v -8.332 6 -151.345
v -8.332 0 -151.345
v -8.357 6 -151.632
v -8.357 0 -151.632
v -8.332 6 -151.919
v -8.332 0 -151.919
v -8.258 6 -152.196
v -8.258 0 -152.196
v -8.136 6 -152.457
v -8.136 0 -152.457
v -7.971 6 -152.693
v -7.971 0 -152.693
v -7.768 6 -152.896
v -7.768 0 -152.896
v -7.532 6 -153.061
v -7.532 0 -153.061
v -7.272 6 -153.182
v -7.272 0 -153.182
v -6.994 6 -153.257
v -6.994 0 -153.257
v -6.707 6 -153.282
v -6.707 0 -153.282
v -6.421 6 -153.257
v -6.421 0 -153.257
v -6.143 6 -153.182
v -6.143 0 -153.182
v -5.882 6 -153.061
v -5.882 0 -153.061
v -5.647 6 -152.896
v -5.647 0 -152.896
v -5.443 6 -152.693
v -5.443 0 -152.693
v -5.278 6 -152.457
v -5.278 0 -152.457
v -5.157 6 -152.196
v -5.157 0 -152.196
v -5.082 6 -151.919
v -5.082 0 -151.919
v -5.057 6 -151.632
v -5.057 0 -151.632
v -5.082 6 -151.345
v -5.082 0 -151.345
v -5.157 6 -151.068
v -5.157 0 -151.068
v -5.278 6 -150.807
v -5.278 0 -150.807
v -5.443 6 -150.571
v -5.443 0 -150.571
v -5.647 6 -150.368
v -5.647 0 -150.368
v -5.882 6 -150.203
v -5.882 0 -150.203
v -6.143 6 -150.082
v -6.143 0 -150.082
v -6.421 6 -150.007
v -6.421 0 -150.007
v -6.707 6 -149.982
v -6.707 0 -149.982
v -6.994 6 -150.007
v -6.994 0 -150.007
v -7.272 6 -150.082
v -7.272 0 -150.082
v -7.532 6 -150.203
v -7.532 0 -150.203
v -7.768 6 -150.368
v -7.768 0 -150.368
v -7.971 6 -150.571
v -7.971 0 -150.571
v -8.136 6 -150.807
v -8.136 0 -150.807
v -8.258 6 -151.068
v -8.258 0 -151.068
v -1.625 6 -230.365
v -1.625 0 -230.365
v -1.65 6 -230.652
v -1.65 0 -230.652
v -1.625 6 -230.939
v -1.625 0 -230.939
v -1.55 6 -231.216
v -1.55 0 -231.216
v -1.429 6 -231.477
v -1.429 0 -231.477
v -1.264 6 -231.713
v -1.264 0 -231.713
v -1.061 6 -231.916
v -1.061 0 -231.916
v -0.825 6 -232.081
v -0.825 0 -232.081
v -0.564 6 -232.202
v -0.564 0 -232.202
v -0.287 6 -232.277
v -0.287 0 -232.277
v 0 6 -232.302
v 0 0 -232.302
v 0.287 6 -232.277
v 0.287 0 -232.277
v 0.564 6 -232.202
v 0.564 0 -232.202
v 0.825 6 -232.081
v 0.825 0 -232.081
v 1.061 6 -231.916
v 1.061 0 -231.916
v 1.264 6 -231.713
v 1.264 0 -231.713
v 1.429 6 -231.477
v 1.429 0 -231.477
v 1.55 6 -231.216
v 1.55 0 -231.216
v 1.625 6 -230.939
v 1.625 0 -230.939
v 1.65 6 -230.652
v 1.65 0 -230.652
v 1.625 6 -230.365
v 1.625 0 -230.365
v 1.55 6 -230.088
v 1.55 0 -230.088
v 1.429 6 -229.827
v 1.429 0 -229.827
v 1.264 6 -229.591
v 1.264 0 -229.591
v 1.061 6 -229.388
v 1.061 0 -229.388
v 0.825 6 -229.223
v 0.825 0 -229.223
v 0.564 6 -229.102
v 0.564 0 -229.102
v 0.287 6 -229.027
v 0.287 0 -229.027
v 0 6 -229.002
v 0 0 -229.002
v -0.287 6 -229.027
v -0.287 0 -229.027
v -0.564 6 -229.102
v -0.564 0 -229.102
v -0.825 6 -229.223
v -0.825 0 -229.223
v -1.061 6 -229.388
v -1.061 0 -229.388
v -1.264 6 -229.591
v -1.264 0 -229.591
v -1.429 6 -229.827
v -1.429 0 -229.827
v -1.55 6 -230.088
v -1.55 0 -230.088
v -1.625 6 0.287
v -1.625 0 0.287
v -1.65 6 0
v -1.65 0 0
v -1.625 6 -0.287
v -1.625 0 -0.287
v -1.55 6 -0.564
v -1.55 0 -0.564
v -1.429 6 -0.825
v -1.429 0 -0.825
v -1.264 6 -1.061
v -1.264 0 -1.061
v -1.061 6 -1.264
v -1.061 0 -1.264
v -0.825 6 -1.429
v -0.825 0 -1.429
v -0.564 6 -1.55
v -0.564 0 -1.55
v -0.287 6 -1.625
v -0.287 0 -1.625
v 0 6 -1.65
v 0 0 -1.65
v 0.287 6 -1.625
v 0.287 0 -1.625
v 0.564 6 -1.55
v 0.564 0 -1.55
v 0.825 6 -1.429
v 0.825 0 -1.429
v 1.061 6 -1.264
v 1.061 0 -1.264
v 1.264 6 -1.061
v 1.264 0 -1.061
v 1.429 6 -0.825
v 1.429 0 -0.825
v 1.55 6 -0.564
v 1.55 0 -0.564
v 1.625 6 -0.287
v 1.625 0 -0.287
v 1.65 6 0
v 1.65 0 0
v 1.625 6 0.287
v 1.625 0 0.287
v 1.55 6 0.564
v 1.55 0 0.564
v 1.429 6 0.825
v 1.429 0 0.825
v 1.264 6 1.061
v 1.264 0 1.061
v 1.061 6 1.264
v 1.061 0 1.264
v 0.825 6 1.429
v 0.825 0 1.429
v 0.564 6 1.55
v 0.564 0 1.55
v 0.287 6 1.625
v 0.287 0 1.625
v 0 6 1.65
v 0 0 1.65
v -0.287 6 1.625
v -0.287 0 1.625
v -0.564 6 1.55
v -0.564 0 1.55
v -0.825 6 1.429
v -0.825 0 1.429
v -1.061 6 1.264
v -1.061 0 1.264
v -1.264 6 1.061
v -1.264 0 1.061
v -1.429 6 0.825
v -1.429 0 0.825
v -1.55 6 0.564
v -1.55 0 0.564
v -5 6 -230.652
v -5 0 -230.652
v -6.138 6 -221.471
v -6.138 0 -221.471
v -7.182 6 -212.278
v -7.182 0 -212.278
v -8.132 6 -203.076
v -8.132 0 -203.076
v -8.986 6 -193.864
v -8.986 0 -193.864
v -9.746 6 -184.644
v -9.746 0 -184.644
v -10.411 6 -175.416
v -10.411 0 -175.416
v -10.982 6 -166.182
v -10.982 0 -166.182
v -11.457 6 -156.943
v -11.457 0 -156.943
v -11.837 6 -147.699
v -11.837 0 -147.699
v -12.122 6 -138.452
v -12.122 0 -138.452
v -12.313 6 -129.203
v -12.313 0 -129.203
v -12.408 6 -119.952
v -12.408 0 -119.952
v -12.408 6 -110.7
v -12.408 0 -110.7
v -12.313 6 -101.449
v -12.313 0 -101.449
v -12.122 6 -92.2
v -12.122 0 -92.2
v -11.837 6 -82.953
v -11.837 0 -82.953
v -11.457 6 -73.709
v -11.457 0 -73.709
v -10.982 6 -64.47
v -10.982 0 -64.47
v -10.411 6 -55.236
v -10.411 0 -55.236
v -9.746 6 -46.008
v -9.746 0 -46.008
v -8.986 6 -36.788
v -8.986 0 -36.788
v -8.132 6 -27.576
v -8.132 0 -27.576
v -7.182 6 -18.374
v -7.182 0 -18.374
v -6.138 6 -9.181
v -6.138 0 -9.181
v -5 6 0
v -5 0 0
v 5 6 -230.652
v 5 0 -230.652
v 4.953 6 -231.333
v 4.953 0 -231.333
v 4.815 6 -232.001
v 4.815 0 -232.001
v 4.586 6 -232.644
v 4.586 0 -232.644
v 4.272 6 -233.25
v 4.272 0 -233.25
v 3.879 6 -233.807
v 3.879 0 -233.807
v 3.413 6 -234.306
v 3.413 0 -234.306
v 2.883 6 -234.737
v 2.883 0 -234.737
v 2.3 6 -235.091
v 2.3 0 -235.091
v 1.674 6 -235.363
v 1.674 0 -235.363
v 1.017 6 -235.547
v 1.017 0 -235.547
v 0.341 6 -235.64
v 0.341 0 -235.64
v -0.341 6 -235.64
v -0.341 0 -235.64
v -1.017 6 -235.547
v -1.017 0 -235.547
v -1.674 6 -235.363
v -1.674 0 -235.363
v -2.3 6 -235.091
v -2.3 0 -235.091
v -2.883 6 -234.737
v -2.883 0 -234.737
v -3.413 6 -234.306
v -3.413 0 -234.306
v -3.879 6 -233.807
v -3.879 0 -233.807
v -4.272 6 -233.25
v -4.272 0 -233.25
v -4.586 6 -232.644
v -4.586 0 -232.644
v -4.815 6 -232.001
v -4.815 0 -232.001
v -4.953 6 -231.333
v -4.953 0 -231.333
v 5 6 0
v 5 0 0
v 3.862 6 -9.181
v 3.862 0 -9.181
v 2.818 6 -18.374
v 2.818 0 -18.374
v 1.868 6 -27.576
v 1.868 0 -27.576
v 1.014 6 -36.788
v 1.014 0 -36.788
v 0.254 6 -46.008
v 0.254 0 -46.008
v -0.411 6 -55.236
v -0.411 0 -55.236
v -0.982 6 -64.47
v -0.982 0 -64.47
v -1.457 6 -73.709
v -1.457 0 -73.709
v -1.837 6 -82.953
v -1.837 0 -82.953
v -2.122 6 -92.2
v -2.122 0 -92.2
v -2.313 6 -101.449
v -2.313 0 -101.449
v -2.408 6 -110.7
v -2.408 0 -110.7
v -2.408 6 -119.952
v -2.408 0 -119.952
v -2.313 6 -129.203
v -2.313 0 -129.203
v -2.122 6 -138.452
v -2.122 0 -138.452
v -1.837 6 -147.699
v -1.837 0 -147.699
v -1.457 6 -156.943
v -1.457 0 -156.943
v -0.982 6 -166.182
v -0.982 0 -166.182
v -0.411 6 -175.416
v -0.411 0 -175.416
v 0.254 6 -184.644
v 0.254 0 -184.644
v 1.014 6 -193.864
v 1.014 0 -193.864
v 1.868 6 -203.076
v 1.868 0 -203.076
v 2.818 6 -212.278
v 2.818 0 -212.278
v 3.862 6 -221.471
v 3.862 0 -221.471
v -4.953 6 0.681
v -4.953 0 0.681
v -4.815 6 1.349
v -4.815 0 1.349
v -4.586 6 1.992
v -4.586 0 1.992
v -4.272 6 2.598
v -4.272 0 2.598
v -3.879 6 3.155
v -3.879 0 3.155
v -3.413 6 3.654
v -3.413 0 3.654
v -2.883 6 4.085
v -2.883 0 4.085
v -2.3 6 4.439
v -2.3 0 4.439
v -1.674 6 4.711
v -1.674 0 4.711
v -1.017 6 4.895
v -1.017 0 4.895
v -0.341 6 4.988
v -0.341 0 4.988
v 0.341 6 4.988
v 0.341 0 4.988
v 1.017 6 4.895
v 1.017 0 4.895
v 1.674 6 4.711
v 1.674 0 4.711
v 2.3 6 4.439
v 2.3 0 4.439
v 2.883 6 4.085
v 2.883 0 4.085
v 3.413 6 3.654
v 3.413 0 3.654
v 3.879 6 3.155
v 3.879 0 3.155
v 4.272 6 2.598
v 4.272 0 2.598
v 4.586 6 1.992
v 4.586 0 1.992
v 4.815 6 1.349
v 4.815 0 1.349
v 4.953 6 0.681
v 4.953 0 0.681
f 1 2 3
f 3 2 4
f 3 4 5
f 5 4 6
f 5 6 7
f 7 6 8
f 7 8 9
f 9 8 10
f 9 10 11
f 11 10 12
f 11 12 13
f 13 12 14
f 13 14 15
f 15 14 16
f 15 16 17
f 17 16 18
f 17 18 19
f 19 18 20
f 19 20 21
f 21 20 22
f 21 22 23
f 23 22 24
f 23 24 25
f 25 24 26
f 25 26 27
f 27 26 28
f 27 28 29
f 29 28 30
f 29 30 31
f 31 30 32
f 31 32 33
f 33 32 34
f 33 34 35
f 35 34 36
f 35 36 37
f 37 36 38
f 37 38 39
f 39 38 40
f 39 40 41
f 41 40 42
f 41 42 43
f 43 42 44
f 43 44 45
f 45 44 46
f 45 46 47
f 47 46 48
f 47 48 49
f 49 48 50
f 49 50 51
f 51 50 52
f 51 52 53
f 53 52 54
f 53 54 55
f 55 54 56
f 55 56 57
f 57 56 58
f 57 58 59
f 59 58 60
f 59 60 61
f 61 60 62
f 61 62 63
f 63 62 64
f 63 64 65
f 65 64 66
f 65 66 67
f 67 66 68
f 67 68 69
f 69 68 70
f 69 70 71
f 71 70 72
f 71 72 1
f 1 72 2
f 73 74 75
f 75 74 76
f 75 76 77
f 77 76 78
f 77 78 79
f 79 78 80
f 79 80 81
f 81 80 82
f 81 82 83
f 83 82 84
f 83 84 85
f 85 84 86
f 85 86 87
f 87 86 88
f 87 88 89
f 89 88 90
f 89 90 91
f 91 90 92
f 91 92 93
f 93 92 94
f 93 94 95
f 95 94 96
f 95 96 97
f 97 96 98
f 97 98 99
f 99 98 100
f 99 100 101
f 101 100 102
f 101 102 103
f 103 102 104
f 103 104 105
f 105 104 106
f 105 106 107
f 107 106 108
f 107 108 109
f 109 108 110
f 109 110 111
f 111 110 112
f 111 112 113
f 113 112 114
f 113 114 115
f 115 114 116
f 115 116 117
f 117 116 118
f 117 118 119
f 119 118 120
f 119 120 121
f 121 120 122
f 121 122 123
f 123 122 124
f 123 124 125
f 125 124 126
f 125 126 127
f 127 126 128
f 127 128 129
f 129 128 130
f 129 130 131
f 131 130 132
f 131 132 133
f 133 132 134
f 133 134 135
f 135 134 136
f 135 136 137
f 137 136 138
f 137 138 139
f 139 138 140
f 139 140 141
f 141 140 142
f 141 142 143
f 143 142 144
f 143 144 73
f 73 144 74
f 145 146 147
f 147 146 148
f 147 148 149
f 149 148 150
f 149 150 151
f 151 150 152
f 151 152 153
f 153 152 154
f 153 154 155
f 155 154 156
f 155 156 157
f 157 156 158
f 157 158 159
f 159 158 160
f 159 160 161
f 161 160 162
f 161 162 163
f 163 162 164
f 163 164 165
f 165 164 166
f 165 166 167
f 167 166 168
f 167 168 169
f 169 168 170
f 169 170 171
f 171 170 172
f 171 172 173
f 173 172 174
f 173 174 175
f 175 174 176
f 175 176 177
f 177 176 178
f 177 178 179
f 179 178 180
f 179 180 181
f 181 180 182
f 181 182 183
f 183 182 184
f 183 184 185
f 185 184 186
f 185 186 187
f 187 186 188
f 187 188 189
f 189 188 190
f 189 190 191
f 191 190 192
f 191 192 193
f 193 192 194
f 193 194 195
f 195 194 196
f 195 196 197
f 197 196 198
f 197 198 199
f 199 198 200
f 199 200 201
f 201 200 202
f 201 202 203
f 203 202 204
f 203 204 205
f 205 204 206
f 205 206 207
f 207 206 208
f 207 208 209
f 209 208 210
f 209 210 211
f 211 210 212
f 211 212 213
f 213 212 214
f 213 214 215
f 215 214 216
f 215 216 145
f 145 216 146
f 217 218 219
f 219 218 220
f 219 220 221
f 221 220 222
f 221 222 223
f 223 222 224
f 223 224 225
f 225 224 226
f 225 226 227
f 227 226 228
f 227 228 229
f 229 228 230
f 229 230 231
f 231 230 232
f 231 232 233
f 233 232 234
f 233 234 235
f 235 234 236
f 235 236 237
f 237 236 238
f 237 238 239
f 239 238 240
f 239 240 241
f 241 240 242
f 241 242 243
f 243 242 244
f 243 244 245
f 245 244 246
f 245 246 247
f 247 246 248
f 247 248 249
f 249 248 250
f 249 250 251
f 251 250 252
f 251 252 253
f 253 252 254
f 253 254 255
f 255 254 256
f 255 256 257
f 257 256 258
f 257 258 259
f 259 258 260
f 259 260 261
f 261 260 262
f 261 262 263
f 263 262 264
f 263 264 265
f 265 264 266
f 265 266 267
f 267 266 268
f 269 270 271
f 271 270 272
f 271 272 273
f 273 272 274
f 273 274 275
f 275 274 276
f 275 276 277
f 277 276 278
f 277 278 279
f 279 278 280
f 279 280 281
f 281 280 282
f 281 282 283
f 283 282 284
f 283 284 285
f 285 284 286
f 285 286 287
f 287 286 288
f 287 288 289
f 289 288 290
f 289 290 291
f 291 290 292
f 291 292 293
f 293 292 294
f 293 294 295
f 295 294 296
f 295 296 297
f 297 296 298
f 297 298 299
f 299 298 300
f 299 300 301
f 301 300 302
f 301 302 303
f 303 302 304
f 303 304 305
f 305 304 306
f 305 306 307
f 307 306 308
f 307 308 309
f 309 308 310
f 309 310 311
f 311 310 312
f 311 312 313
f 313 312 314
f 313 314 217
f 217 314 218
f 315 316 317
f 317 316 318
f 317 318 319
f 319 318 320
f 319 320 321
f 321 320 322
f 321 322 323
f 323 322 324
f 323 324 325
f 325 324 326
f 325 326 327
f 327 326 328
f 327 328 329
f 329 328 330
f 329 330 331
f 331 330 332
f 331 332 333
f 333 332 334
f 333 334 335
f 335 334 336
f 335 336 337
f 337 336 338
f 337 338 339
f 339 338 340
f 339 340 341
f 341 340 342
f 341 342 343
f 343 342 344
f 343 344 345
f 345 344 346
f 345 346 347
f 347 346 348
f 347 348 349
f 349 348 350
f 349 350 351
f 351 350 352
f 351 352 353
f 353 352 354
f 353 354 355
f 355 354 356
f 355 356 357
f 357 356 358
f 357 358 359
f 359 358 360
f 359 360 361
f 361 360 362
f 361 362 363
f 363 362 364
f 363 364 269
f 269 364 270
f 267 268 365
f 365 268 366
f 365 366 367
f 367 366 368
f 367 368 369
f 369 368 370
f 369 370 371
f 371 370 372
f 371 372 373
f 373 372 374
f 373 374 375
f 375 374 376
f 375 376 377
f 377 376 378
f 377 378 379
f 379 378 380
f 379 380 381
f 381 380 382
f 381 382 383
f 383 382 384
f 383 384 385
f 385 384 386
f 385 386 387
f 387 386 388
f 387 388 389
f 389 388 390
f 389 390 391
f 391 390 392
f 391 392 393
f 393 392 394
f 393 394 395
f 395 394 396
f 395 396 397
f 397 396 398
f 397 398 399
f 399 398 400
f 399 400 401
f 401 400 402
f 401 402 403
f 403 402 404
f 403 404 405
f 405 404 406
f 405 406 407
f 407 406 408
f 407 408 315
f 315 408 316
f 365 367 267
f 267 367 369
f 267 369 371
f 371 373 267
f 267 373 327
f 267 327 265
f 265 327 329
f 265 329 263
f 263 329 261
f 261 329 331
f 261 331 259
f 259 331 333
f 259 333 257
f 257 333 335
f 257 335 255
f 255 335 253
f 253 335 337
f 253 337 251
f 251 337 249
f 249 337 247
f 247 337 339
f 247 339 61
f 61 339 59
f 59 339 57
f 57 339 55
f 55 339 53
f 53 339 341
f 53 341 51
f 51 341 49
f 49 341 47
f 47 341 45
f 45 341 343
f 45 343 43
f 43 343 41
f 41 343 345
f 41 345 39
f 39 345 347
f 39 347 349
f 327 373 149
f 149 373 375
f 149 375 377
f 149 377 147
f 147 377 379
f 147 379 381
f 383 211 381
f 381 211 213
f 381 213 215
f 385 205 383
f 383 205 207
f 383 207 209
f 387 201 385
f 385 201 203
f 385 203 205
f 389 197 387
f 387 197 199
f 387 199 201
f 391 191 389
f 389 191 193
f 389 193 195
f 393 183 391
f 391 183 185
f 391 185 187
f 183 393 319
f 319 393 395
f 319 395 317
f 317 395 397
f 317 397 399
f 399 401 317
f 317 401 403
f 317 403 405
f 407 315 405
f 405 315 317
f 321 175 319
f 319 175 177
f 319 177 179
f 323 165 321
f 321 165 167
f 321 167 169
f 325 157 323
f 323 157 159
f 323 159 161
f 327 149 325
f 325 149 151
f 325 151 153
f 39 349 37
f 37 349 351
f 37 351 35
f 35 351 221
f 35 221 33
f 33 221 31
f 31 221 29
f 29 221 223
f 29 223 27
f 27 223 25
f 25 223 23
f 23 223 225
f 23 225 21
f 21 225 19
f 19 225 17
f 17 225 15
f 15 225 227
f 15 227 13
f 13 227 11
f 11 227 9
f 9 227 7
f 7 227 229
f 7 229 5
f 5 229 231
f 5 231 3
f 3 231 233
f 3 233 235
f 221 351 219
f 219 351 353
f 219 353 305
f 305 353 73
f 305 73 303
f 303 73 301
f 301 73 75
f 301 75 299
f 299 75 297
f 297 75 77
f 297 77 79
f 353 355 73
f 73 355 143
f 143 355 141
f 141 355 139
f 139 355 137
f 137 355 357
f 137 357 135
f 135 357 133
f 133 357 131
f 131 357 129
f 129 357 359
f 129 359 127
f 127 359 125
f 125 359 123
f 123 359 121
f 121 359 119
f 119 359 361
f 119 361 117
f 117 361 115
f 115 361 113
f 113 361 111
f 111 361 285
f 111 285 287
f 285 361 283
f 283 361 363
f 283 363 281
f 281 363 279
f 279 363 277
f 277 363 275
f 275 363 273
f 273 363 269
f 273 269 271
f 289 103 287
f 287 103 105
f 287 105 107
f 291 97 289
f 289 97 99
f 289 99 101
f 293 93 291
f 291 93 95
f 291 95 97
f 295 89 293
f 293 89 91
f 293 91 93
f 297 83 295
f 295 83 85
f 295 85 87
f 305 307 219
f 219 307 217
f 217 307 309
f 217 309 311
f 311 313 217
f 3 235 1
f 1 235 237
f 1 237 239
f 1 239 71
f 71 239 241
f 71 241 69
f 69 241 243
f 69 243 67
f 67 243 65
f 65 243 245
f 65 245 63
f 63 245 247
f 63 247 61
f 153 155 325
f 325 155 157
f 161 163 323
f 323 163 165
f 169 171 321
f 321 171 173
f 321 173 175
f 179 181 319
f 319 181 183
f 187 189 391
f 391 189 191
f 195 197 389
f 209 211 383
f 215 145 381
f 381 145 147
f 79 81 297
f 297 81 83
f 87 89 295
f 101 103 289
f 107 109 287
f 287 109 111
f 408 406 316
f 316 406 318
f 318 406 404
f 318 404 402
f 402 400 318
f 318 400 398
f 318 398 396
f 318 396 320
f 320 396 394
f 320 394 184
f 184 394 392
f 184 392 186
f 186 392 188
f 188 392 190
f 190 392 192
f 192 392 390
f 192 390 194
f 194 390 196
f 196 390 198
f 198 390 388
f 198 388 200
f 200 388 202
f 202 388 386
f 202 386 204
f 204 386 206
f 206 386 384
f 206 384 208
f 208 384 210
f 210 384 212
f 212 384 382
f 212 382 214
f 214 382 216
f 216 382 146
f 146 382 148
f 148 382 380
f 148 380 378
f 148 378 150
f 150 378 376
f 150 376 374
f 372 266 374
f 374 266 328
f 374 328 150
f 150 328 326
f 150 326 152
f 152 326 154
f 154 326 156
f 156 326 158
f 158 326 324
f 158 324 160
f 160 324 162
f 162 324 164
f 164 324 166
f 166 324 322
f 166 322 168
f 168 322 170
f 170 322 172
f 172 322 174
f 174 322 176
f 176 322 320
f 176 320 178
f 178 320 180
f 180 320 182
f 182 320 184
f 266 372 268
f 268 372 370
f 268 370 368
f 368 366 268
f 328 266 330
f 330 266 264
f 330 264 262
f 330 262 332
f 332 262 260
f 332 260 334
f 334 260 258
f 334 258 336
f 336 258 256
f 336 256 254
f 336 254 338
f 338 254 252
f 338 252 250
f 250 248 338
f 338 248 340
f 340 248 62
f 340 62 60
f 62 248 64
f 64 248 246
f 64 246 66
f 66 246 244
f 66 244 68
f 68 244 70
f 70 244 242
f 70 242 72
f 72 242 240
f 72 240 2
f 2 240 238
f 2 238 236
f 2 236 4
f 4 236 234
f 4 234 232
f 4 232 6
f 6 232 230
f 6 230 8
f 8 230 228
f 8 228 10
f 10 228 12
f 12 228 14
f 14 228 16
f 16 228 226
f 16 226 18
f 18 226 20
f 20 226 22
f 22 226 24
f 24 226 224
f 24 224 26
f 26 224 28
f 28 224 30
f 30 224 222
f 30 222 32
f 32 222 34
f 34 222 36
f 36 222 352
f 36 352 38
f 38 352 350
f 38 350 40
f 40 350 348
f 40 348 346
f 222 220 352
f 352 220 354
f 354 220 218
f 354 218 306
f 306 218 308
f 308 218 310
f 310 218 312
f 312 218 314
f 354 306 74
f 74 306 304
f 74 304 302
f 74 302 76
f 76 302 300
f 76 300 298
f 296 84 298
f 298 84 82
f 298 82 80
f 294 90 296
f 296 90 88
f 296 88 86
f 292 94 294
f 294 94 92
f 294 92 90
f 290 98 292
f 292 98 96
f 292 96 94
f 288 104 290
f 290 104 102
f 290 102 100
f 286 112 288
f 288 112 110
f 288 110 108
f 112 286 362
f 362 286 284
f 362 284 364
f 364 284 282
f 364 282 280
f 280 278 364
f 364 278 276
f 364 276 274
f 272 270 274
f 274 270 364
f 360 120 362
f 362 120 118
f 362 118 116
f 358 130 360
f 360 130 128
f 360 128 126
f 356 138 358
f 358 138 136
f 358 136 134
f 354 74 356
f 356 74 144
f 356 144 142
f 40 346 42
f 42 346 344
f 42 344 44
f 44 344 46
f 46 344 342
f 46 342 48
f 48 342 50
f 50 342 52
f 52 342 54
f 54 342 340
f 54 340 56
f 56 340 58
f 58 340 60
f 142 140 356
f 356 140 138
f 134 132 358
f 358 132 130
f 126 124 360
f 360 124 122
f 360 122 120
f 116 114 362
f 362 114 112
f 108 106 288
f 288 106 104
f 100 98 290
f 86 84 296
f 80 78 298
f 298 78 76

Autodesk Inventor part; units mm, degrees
ref_plane "YZ Plane" through (0, 0, 0) normal (1, 0, 0) x (0, 1, 0)
ref_plane "XZ Plane" through (0, 0, 0) normal (0, 1, 0) x (-1, 0, 0)
ref_plane "XY Plane" through (0, 0, 0) normal (0, 0, 1) x (1, 0, 0)
sketch "Sketch1" plane through (0, 0, 0) normal (0, 1, 0) x (-1, 0, 0)
  line L0 (0, 0) -> (0, -230.652) construction
  line L1 (5, 0) -> (5, -230.652)
  line L2 (-5, -230.652) -> (-5, 0)
  arc A0 (5, 0) -> (-5, 0) centre (0, 0) ccw
  arc A1 (-5, -230.652) -> (5, -230.652) centre (0, -230.652) ccw
  circle A2 centre (0, 0) radius 1.65
  circle A3 centre (0, -230.652) radius 1.65
  arc A4 (-5, -230.652) -> (-5, 0) centre (-897.5805, -115.326) ccw
  arc A5 (5, -230.652) -> (5, 0) centre (-887.5805, -115.326) ccw
  circle A6 centre (6.7073, -151.632) radius 1.65
  point P0 (0, -115.326)
  dimension "d0" = 3.3
  dimension "d1" = 3.3
  dimension "d2" = 10
  dimension "d3" = 230.652
  dimension "d14" = 900
  dimension "d15" = 900
  dimension "d16" = 3.3
  dimension "d17" = 79.02
extrude "Extrusion1" add sketch "Sketch1" along normal blind 6 contours A5 L1 | L1 A1 A4 A0
